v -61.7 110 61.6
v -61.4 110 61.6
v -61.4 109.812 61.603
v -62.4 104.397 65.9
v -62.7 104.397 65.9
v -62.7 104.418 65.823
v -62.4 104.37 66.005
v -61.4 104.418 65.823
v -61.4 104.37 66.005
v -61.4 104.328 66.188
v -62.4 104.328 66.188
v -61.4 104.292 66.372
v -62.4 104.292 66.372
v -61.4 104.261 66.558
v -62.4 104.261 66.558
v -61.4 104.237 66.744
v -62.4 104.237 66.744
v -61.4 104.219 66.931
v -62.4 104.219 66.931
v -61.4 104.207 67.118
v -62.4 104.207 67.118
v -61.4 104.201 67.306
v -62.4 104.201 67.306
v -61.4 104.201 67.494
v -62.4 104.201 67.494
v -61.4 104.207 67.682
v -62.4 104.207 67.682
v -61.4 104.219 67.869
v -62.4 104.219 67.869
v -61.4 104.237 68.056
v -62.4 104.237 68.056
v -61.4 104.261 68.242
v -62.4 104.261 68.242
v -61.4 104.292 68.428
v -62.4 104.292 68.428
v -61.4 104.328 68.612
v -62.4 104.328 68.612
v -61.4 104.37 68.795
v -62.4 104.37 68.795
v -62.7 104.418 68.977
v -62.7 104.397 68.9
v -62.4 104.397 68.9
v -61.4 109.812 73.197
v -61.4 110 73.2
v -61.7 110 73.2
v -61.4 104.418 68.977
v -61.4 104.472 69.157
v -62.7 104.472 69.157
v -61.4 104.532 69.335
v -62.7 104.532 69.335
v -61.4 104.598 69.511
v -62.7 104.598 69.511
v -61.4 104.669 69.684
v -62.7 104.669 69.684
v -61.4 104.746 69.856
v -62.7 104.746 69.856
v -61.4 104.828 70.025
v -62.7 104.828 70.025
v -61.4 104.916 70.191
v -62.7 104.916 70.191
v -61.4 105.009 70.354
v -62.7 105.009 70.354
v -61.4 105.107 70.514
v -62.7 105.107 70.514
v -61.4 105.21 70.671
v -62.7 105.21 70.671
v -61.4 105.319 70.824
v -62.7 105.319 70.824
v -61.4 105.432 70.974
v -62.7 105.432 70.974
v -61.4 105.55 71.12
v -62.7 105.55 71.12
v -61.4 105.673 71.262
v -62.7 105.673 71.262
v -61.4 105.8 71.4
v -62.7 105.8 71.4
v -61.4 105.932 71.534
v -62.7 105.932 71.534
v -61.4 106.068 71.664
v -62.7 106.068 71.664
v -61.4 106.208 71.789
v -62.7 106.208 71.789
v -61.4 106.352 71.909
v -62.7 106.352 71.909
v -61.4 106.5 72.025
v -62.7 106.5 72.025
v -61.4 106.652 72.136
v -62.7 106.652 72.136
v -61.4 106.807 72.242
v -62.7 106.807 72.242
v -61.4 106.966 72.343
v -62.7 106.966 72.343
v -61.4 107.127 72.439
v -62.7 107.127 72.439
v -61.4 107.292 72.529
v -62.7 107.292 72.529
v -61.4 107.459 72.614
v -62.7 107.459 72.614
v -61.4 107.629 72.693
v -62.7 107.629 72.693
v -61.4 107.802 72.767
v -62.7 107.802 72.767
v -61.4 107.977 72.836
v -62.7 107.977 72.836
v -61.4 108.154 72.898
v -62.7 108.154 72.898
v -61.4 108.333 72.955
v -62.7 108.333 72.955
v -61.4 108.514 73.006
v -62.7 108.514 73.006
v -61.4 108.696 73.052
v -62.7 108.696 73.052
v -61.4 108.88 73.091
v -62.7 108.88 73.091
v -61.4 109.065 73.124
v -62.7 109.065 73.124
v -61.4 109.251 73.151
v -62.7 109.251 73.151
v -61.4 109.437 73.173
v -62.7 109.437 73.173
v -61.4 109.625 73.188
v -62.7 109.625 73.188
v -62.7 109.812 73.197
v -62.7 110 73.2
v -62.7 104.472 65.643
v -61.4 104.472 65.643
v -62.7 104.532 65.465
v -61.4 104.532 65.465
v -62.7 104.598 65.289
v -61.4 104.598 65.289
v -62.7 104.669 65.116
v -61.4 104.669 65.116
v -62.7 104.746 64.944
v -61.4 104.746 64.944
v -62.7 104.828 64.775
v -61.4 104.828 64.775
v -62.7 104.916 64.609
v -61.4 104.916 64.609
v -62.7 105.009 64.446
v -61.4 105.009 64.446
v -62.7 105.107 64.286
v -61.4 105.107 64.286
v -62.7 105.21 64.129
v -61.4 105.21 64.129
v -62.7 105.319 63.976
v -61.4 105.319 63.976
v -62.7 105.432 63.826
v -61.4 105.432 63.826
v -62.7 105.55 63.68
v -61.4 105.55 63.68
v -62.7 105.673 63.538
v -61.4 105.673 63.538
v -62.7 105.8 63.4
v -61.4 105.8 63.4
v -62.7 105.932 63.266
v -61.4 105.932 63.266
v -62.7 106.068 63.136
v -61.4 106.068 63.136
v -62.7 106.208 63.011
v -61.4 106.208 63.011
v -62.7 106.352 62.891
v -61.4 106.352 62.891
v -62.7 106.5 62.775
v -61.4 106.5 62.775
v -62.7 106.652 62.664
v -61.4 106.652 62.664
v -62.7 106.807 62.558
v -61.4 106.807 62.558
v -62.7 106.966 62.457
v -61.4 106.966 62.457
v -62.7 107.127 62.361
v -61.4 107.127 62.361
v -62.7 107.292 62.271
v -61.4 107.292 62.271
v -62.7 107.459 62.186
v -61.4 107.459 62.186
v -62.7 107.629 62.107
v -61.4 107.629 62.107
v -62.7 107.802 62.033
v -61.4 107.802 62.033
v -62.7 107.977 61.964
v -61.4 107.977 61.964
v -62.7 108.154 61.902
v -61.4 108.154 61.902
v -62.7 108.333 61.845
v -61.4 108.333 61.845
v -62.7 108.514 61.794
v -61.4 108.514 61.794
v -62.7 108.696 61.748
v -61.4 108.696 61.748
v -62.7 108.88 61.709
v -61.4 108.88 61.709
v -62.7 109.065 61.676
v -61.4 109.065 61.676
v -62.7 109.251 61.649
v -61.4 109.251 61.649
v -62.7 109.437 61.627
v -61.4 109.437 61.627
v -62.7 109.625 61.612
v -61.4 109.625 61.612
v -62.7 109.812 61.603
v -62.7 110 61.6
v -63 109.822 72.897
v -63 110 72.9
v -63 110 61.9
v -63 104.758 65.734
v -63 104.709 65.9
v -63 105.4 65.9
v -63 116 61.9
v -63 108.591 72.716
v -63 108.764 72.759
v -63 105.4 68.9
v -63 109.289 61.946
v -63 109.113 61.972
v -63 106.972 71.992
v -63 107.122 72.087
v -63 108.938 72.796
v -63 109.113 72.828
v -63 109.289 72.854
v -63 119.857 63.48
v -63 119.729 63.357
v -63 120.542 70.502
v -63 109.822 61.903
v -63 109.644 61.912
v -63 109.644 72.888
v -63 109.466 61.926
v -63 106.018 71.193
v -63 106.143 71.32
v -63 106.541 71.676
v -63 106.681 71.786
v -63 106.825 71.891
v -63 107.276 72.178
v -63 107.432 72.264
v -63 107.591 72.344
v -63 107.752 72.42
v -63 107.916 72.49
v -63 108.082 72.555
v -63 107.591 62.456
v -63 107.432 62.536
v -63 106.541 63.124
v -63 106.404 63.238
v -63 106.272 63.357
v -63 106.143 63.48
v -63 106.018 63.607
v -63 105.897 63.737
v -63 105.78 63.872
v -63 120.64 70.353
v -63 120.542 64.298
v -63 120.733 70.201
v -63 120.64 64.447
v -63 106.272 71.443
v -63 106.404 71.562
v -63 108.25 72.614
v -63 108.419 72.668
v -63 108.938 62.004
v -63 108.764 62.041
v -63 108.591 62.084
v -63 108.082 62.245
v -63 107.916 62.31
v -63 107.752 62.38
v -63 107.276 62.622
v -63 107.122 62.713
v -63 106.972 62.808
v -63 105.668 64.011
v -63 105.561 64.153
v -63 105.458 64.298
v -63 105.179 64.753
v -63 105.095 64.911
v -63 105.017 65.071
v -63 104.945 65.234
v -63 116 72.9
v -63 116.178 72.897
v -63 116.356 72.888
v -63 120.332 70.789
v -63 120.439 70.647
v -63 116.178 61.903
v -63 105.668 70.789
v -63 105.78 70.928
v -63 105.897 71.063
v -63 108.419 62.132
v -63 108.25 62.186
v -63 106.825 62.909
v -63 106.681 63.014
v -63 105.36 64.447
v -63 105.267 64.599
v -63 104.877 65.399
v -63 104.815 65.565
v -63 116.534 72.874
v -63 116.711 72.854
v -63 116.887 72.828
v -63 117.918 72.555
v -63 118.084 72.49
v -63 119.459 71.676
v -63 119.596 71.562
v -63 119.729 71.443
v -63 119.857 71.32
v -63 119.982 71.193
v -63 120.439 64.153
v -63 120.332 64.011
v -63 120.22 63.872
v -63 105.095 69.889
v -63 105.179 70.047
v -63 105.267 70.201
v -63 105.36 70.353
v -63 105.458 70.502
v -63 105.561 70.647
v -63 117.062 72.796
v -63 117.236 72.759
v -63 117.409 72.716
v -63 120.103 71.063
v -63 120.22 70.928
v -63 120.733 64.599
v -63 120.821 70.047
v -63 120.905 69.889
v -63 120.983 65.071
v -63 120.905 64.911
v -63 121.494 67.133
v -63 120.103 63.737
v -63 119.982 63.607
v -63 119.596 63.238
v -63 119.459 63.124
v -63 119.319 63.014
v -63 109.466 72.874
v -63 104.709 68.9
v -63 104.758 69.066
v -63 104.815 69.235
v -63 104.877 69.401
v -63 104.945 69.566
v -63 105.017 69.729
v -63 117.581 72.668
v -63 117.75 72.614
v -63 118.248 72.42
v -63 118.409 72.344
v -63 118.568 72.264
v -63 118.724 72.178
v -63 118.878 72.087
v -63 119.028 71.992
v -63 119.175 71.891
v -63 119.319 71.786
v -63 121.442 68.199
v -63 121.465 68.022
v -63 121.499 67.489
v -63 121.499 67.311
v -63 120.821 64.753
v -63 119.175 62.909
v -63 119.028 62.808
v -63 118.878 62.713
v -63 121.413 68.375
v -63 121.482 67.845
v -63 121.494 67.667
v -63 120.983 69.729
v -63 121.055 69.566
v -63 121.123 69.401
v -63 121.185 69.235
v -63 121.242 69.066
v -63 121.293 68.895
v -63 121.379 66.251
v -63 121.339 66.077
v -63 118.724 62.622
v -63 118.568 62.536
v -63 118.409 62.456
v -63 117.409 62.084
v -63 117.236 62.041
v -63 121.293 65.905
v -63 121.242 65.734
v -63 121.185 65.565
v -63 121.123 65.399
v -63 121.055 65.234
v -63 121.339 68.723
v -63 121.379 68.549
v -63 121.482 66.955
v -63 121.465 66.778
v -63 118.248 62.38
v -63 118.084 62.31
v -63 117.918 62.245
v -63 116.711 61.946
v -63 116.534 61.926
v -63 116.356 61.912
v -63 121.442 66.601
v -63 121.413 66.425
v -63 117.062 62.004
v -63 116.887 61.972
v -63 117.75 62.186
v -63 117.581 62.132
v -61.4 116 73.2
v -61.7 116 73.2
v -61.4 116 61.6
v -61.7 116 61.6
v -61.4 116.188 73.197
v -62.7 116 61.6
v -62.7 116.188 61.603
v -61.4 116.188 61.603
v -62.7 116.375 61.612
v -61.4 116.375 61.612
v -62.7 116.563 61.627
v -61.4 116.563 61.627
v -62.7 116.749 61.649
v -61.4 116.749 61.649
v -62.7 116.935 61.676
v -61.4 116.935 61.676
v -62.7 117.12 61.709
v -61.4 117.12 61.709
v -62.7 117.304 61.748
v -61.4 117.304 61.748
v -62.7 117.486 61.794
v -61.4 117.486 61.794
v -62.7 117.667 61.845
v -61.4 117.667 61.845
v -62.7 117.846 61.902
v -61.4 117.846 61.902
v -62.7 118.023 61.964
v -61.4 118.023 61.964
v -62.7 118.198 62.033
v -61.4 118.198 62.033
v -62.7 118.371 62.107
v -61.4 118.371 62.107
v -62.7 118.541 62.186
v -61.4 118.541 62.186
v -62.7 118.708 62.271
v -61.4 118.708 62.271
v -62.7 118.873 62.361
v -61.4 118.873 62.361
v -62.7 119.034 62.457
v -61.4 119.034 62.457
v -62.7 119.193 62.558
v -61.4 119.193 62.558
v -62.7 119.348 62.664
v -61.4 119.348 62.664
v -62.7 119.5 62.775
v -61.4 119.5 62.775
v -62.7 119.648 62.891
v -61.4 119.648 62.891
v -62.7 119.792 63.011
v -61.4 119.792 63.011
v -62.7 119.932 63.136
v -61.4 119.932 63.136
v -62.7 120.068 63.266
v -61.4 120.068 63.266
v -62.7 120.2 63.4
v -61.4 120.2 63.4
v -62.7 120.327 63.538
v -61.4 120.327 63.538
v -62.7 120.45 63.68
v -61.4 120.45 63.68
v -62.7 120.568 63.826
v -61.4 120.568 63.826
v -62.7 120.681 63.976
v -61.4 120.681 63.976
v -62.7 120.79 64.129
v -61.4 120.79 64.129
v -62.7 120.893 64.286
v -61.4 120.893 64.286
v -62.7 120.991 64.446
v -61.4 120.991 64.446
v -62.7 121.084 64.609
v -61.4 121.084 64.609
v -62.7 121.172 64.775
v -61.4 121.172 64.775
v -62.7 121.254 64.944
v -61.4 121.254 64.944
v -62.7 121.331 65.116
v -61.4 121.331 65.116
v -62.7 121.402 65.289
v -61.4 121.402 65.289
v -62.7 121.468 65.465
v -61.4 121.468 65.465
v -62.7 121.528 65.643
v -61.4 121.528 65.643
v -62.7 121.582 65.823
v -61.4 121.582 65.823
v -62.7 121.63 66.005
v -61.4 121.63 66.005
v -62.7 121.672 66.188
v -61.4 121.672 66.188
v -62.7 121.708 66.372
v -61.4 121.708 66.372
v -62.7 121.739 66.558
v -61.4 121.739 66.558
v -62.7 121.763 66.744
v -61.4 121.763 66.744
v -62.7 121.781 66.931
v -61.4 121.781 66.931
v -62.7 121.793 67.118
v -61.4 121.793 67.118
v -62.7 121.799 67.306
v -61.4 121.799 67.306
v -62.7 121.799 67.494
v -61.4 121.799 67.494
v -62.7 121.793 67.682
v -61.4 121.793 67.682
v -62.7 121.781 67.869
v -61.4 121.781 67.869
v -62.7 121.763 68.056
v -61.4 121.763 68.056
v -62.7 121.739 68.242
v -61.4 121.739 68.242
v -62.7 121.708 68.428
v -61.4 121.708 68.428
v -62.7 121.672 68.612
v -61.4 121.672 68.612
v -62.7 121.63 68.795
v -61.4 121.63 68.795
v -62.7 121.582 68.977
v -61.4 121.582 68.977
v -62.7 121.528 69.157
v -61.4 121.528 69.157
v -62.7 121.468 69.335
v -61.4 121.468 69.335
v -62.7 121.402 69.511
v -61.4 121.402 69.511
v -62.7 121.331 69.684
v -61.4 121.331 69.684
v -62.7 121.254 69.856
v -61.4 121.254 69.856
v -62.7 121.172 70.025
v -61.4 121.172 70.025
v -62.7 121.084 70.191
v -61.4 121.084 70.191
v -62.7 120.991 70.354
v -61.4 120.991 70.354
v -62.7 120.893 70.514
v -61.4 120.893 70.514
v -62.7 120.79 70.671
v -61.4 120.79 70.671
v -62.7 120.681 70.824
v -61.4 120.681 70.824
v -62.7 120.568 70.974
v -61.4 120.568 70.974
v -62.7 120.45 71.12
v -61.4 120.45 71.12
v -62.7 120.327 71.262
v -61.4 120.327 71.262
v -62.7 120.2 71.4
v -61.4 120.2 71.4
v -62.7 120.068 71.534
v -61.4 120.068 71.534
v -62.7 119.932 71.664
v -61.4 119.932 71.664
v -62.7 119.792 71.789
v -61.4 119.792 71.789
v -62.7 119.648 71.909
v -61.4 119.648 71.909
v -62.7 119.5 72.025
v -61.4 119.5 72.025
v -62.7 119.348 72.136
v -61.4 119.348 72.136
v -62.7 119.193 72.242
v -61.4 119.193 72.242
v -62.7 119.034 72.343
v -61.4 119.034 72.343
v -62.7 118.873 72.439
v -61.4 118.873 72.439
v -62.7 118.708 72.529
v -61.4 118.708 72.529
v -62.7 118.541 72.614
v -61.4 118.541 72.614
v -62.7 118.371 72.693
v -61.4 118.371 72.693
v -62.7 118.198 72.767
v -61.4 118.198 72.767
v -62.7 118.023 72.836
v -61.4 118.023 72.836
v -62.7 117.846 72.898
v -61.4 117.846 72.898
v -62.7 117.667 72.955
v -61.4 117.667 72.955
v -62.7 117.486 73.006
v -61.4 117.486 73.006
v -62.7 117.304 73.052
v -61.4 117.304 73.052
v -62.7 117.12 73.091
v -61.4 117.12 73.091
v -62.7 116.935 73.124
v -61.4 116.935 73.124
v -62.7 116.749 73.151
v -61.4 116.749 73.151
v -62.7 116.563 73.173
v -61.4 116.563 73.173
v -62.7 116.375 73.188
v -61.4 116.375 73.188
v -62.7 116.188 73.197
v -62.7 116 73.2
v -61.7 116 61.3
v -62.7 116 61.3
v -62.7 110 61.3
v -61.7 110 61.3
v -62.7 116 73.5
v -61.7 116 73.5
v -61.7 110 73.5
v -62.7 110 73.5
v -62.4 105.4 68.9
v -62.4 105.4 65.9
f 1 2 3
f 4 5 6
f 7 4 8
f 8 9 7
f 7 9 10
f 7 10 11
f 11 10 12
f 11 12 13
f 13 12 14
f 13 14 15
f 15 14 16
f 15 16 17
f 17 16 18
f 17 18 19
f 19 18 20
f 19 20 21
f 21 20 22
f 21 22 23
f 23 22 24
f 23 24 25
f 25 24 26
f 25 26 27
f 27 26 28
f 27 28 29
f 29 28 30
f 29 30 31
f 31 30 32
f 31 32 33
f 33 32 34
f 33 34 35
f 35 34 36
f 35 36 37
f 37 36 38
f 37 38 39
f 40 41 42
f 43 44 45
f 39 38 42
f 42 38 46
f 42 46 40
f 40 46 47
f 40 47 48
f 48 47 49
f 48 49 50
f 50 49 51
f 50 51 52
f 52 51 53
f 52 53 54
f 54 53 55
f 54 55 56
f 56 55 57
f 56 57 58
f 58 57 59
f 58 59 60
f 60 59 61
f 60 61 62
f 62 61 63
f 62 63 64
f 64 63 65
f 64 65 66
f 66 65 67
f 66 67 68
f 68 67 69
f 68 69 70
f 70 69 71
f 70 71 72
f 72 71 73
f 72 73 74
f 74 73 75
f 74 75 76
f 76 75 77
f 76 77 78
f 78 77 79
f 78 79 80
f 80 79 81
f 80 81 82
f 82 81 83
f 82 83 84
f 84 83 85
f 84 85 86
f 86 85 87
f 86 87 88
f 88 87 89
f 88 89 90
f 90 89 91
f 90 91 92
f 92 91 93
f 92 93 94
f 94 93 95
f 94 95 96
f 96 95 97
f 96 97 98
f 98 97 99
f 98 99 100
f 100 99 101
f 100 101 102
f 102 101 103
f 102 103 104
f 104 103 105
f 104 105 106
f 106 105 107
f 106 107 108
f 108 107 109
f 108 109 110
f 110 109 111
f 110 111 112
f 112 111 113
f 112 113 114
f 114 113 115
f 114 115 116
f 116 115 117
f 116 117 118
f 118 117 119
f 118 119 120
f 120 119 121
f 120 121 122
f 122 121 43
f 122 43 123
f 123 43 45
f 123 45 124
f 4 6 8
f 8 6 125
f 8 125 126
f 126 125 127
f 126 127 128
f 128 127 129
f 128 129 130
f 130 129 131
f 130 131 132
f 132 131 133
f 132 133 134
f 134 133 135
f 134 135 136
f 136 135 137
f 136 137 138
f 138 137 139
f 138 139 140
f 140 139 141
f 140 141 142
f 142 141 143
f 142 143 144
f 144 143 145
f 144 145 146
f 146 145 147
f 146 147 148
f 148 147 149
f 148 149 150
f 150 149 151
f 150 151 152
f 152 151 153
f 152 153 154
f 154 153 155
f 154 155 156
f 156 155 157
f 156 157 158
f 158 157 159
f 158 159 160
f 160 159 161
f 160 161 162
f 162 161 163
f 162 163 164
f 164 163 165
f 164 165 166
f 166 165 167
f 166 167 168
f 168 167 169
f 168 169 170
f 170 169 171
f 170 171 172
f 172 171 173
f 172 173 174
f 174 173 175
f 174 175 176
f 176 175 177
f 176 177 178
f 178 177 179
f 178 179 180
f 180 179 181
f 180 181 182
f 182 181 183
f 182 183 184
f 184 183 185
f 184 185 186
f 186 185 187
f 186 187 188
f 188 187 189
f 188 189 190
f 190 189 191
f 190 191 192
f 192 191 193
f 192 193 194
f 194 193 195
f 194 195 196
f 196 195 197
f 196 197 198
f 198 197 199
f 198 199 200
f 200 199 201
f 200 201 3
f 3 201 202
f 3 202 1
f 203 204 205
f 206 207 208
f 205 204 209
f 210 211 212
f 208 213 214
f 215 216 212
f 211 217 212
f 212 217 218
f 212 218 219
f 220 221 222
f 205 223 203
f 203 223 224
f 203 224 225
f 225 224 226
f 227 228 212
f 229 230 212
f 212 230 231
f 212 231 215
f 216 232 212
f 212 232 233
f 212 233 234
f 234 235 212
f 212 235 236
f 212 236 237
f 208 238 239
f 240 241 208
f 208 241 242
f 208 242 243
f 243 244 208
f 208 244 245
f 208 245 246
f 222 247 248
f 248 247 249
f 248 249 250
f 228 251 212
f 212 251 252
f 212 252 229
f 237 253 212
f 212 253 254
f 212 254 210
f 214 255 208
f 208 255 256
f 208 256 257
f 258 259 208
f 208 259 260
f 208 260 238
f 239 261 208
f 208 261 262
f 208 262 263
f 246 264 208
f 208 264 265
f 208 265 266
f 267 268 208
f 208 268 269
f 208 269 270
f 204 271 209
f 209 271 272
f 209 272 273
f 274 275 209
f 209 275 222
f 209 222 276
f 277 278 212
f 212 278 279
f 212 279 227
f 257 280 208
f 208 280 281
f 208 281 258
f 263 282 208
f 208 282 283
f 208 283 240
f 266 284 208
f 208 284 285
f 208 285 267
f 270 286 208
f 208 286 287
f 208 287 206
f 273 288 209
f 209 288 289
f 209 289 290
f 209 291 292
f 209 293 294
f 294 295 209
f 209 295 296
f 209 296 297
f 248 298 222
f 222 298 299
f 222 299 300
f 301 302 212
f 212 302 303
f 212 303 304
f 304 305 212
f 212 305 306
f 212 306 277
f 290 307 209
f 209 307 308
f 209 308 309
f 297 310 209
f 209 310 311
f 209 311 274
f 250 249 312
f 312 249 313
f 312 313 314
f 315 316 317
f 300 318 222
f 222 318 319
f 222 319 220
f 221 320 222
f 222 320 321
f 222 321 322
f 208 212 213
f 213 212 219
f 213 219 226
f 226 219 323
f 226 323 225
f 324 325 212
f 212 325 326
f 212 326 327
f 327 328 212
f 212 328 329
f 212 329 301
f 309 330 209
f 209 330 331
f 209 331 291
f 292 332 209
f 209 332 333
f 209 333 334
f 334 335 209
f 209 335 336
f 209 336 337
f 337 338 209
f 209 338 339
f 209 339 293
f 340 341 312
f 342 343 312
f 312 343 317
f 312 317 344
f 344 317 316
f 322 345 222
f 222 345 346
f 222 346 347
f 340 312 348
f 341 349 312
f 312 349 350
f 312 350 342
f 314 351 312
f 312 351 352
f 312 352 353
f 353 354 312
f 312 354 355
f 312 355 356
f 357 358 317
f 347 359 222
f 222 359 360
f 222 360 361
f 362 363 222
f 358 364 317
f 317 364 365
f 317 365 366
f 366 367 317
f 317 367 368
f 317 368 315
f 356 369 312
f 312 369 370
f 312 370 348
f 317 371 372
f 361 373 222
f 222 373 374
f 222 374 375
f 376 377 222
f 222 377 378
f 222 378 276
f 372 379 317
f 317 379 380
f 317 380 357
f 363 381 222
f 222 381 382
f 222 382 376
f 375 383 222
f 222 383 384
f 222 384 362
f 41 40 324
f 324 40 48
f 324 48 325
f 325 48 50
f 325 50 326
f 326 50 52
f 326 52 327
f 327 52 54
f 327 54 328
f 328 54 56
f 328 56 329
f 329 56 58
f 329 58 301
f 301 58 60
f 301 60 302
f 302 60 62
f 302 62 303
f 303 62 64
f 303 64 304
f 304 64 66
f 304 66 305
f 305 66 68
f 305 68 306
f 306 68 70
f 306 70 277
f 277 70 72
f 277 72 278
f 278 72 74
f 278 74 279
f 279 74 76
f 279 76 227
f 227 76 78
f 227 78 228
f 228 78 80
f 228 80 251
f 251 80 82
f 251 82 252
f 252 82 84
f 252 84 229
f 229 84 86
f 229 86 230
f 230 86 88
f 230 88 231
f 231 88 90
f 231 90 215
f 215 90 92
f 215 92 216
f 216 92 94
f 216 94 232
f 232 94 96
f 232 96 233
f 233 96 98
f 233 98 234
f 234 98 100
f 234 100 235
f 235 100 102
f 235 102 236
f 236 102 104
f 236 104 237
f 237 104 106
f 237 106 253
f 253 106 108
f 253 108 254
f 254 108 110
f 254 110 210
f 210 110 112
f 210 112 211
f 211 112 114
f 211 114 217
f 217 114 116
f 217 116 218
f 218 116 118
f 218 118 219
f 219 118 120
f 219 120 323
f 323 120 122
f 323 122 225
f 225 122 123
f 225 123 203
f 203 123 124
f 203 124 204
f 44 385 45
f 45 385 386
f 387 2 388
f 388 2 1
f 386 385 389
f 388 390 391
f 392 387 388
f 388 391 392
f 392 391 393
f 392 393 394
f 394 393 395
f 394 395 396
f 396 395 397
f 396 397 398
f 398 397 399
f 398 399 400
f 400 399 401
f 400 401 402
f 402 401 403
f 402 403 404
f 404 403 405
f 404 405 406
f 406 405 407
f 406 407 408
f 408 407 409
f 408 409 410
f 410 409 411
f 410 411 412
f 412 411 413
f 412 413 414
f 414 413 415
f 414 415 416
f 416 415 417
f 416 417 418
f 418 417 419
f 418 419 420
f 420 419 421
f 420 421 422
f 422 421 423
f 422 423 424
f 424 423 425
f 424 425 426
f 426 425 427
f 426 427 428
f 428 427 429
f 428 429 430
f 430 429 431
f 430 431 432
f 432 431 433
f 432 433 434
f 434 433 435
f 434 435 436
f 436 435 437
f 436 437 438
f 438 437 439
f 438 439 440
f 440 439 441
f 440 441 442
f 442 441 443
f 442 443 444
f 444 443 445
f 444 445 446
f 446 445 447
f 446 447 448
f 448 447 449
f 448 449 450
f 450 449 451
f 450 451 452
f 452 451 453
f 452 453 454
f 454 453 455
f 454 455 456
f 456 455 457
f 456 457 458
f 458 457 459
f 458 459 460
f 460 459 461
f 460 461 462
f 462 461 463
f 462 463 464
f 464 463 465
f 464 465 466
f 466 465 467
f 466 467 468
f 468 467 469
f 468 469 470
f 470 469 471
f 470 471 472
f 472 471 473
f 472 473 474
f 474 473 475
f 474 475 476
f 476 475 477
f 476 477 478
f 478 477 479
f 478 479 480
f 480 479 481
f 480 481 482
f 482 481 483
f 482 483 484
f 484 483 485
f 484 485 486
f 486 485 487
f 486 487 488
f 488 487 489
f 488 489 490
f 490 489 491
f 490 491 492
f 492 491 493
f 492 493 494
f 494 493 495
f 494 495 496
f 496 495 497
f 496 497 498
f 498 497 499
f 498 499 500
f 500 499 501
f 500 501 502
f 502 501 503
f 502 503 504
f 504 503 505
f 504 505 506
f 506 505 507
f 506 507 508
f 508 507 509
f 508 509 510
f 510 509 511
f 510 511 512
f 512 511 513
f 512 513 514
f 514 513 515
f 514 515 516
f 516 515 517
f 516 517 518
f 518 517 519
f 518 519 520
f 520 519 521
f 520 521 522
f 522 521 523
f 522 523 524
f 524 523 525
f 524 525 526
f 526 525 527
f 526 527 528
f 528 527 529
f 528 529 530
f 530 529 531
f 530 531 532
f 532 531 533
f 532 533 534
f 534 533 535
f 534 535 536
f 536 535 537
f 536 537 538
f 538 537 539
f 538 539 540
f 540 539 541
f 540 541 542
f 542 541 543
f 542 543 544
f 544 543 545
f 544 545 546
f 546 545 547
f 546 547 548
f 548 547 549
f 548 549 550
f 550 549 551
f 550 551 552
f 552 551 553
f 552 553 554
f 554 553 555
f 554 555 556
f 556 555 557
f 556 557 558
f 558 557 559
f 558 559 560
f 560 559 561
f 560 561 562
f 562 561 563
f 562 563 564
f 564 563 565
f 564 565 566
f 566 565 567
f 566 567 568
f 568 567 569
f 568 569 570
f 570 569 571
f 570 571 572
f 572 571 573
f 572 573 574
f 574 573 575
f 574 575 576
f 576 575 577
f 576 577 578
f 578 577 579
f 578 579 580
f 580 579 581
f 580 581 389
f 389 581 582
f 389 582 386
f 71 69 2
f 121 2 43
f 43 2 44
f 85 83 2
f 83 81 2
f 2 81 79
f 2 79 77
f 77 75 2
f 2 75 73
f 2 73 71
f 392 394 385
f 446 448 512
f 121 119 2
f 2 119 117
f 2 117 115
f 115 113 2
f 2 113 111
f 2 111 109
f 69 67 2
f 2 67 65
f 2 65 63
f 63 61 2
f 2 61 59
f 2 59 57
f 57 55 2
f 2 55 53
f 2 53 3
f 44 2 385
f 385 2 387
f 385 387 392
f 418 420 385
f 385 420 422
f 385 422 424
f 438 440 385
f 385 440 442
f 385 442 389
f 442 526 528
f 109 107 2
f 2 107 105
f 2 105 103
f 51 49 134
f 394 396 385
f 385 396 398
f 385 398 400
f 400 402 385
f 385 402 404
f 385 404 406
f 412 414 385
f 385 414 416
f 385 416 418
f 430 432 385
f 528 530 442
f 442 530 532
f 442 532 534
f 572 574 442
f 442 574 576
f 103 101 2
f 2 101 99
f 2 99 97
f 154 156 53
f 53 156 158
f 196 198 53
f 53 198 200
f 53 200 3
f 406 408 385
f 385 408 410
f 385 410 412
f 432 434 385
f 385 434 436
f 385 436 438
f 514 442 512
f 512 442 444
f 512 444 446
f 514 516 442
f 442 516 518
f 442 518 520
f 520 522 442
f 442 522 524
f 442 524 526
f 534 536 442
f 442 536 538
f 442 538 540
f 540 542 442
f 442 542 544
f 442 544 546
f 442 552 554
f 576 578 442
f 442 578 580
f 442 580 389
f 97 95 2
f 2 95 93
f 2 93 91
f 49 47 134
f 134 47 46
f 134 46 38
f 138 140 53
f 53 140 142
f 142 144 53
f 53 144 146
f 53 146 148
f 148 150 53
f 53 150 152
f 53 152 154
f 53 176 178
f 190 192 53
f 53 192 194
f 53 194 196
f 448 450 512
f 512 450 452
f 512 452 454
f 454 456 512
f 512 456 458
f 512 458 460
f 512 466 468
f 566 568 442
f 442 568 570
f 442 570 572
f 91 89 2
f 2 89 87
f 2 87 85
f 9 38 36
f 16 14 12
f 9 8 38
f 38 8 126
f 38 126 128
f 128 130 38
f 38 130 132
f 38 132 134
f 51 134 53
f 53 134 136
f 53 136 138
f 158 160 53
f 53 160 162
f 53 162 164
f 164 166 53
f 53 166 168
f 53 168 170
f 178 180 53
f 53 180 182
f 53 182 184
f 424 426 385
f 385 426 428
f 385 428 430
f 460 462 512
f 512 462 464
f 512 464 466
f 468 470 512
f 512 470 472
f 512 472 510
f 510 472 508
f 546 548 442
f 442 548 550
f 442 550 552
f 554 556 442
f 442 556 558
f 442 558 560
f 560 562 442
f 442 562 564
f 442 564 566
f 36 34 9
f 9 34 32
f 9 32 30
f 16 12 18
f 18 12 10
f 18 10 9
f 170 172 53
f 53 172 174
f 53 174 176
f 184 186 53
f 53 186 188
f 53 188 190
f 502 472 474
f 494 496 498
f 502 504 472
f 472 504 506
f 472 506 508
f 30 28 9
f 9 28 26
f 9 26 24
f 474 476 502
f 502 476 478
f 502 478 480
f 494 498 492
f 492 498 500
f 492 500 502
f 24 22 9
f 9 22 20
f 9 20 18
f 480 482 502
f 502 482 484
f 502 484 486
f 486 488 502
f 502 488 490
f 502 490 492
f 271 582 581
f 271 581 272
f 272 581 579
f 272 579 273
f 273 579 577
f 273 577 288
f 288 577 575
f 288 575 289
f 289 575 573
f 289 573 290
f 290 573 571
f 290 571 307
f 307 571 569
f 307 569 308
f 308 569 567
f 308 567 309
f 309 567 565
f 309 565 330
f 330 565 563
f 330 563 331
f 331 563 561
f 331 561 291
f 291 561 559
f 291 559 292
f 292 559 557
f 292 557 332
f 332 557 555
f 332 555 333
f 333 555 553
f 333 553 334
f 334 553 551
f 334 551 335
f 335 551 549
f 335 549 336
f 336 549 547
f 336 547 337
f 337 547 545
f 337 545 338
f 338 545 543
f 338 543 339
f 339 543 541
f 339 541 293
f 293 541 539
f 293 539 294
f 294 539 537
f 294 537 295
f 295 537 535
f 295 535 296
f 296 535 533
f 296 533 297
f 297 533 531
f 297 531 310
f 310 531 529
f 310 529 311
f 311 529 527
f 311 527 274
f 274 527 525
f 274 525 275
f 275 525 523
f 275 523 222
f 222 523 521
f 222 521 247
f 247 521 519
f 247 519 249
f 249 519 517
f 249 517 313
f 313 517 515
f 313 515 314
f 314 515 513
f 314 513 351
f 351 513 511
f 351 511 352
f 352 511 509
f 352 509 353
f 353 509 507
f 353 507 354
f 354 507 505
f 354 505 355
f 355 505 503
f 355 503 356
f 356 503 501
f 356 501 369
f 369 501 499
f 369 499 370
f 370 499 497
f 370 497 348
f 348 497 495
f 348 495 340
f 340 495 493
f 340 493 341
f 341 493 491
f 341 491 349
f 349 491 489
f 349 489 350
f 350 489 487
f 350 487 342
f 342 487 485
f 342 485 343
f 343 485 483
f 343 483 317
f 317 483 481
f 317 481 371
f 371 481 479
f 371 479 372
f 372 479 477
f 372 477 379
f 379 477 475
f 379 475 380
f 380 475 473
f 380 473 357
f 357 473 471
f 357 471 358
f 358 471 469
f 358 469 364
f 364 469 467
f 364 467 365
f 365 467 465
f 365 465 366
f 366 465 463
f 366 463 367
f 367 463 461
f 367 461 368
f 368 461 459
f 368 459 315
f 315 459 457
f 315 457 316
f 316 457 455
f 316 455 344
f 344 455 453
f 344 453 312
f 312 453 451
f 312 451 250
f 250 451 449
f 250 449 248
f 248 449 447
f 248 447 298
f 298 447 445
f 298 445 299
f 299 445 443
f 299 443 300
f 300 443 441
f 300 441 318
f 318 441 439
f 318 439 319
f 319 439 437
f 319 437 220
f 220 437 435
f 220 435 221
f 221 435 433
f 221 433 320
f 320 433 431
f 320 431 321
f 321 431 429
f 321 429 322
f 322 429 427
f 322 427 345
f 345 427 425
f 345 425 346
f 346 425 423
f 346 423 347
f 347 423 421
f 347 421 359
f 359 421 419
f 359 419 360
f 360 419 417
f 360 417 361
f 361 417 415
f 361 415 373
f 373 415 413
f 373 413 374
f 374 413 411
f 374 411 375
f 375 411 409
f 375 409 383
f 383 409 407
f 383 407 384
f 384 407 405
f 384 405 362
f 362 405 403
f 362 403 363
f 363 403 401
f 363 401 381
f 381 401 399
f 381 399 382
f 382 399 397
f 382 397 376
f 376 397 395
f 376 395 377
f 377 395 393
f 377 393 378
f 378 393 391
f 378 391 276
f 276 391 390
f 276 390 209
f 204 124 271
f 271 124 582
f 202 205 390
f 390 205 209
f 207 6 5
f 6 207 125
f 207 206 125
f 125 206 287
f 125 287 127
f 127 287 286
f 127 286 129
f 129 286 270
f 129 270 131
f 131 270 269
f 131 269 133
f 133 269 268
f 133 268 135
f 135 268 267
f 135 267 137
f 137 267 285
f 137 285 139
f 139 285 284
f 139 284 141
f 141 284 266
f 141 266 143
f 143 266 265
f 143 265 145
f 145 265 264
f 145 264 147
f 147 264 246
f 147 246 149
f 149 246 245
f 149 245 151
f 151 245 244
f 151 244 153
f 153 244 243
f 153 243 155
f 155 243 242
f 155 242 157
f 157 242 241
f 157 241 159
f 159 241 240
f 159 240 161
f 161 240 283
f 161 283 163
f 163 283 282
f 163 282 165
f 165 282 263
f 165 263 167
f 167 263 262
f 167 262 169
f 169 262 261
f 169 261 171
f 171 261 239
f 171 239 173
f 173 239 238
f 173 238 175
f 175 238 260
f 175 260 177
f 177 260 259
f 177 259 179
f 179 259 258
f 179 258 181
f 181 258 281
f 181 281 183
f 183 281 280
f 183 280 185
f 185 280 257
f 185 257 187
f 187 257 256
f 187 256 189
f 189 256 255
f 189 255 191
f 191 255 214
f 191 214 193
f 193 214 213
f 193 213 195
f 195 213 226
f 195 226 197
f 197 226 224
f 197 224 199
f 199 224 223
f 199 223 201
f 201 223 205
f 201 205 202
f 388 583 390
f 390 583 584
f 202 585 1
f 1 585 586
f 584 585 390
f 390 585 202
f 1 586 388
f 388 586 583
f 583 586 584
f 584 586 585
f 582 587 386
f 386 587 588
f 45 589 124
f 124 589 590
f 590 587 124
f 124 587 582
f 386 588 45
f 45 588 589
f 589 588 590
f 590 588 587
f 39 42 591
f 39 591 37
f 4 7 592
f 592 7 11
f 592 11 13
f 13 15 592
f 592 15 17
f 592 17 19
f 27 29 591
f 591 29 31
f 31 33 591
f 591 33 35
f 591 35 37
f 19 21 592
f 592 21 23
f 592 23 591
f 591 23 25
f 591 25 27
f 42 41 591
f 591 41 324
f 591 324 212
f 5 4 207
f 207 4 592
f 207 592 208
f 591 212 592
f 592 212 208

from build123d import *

# Parameters (mm, degrees)
BOSS_EXTRUDE1_START = -63
BOSS_EXTRUDE1_DEPTH = 1.6
CHAMFER1_SIZE       = 0.3
BOSS_EXTRUDE2_START = 61.3
SKETCH2_W           = 1
SKETCH2_H           = 6
BOSS_EXTRUDE2_DEPTH = 0.31
BOSS_EXTRUDE3_START = 73.19
SKETCH3_W           = 1
SKETCH3_H           = 6
BOSS_EXTRUDE3_DEPTH = 0.31
BOSS_EXTRUDE4_START = 65.9
SKETCH4_W           = 0.7
SKETCH4_H           = 1.3
BOSS_EXTRUDE4_DEPTH = 3


with BuildPart() as part:
    # Sketch1 → Boss-Extrude1 (new body)
    with BuildSketch(Plane(origin=(0, 0, 0), x_dir=(0, 0, -1), z_dir=(1, 0, 0)).offset(BOSS_EXTRUDE1_START)):
        with BuildLine():
            Line((-73.2, 110), (-73.2, 116))
            ThreePointArc((-73.2, 116), (-71.501219331, 120.101219331), (-67.4, 121.8))
            ThreePointArc((-67.4, 121.8), (-63.298780669, 120.101219331), (-61.6, 116))
            Line((-61.6, 116), (-61.6, 110))
            ThreePointArc((-61.6, 110), (-63.298780669, 105.898780669), (-67.4, 104.2))
            ThreePointArc((-67.4, 104.2), (-71.501219331, 105.898780669), (-73.2, 110))
        make_face()
    extrude(amount=BOSS_EXTRUDE1_DEPTH)

    # Chamfer1
    chamfer1_edges = [part.edges().sort_by_distance(p)[0] for p in [
        (-63, 104.2, 67.4),
        (-63, 113, 73.2),
        (-63, 121.8, 67.4),
        (-63, 113, 61.6),
    ]]
    chamfer(chamfer1_edges, length=CHAMFER1_SIZE)

    # Sketch2 → Boss-Extrude2 (add)
    with BuildSketch(Plane.XY.offset(BOSS_EXTRUDE2_START)):
        with Locations((-62.2, 113)):
            Rectangle(SKETCH2_W, SKETCH2_H)
    extrude(amount=BOSS_EXTRUDE2_DEPTH)

    # Sketch3 → Boss-Extrude3 (add)
    with BuildSketch(Plane.XY.offset(BOSS_EXTRUDE3_START)):
        with Locations((-62.2, 113)):
            Rectangle(SKETCH3_W, SKETCH3_H)
    extrude(amount=BOSS_EXTRUDE3_DEPTH)


with BuildPart() as body_2:
    # Sketch4 → Boss-Extrude4 (new body)
    with BuildSketch(Plane.XY.offset(BOSS_EXTRUDE4_START)):
        with Locations((-62.75, 104.75)):
            Rectangle(SKETCH4_W, SKETCH4_H)
    extrude(amount=BOSS_EXTRUDE4_DEPTH)


with BuildPart() as part_1:
    add(part.part)

    # Combine1: cut body 2
    add(body_2.part, mode=Mode.SUBTRACT)


solid = part_1.part
